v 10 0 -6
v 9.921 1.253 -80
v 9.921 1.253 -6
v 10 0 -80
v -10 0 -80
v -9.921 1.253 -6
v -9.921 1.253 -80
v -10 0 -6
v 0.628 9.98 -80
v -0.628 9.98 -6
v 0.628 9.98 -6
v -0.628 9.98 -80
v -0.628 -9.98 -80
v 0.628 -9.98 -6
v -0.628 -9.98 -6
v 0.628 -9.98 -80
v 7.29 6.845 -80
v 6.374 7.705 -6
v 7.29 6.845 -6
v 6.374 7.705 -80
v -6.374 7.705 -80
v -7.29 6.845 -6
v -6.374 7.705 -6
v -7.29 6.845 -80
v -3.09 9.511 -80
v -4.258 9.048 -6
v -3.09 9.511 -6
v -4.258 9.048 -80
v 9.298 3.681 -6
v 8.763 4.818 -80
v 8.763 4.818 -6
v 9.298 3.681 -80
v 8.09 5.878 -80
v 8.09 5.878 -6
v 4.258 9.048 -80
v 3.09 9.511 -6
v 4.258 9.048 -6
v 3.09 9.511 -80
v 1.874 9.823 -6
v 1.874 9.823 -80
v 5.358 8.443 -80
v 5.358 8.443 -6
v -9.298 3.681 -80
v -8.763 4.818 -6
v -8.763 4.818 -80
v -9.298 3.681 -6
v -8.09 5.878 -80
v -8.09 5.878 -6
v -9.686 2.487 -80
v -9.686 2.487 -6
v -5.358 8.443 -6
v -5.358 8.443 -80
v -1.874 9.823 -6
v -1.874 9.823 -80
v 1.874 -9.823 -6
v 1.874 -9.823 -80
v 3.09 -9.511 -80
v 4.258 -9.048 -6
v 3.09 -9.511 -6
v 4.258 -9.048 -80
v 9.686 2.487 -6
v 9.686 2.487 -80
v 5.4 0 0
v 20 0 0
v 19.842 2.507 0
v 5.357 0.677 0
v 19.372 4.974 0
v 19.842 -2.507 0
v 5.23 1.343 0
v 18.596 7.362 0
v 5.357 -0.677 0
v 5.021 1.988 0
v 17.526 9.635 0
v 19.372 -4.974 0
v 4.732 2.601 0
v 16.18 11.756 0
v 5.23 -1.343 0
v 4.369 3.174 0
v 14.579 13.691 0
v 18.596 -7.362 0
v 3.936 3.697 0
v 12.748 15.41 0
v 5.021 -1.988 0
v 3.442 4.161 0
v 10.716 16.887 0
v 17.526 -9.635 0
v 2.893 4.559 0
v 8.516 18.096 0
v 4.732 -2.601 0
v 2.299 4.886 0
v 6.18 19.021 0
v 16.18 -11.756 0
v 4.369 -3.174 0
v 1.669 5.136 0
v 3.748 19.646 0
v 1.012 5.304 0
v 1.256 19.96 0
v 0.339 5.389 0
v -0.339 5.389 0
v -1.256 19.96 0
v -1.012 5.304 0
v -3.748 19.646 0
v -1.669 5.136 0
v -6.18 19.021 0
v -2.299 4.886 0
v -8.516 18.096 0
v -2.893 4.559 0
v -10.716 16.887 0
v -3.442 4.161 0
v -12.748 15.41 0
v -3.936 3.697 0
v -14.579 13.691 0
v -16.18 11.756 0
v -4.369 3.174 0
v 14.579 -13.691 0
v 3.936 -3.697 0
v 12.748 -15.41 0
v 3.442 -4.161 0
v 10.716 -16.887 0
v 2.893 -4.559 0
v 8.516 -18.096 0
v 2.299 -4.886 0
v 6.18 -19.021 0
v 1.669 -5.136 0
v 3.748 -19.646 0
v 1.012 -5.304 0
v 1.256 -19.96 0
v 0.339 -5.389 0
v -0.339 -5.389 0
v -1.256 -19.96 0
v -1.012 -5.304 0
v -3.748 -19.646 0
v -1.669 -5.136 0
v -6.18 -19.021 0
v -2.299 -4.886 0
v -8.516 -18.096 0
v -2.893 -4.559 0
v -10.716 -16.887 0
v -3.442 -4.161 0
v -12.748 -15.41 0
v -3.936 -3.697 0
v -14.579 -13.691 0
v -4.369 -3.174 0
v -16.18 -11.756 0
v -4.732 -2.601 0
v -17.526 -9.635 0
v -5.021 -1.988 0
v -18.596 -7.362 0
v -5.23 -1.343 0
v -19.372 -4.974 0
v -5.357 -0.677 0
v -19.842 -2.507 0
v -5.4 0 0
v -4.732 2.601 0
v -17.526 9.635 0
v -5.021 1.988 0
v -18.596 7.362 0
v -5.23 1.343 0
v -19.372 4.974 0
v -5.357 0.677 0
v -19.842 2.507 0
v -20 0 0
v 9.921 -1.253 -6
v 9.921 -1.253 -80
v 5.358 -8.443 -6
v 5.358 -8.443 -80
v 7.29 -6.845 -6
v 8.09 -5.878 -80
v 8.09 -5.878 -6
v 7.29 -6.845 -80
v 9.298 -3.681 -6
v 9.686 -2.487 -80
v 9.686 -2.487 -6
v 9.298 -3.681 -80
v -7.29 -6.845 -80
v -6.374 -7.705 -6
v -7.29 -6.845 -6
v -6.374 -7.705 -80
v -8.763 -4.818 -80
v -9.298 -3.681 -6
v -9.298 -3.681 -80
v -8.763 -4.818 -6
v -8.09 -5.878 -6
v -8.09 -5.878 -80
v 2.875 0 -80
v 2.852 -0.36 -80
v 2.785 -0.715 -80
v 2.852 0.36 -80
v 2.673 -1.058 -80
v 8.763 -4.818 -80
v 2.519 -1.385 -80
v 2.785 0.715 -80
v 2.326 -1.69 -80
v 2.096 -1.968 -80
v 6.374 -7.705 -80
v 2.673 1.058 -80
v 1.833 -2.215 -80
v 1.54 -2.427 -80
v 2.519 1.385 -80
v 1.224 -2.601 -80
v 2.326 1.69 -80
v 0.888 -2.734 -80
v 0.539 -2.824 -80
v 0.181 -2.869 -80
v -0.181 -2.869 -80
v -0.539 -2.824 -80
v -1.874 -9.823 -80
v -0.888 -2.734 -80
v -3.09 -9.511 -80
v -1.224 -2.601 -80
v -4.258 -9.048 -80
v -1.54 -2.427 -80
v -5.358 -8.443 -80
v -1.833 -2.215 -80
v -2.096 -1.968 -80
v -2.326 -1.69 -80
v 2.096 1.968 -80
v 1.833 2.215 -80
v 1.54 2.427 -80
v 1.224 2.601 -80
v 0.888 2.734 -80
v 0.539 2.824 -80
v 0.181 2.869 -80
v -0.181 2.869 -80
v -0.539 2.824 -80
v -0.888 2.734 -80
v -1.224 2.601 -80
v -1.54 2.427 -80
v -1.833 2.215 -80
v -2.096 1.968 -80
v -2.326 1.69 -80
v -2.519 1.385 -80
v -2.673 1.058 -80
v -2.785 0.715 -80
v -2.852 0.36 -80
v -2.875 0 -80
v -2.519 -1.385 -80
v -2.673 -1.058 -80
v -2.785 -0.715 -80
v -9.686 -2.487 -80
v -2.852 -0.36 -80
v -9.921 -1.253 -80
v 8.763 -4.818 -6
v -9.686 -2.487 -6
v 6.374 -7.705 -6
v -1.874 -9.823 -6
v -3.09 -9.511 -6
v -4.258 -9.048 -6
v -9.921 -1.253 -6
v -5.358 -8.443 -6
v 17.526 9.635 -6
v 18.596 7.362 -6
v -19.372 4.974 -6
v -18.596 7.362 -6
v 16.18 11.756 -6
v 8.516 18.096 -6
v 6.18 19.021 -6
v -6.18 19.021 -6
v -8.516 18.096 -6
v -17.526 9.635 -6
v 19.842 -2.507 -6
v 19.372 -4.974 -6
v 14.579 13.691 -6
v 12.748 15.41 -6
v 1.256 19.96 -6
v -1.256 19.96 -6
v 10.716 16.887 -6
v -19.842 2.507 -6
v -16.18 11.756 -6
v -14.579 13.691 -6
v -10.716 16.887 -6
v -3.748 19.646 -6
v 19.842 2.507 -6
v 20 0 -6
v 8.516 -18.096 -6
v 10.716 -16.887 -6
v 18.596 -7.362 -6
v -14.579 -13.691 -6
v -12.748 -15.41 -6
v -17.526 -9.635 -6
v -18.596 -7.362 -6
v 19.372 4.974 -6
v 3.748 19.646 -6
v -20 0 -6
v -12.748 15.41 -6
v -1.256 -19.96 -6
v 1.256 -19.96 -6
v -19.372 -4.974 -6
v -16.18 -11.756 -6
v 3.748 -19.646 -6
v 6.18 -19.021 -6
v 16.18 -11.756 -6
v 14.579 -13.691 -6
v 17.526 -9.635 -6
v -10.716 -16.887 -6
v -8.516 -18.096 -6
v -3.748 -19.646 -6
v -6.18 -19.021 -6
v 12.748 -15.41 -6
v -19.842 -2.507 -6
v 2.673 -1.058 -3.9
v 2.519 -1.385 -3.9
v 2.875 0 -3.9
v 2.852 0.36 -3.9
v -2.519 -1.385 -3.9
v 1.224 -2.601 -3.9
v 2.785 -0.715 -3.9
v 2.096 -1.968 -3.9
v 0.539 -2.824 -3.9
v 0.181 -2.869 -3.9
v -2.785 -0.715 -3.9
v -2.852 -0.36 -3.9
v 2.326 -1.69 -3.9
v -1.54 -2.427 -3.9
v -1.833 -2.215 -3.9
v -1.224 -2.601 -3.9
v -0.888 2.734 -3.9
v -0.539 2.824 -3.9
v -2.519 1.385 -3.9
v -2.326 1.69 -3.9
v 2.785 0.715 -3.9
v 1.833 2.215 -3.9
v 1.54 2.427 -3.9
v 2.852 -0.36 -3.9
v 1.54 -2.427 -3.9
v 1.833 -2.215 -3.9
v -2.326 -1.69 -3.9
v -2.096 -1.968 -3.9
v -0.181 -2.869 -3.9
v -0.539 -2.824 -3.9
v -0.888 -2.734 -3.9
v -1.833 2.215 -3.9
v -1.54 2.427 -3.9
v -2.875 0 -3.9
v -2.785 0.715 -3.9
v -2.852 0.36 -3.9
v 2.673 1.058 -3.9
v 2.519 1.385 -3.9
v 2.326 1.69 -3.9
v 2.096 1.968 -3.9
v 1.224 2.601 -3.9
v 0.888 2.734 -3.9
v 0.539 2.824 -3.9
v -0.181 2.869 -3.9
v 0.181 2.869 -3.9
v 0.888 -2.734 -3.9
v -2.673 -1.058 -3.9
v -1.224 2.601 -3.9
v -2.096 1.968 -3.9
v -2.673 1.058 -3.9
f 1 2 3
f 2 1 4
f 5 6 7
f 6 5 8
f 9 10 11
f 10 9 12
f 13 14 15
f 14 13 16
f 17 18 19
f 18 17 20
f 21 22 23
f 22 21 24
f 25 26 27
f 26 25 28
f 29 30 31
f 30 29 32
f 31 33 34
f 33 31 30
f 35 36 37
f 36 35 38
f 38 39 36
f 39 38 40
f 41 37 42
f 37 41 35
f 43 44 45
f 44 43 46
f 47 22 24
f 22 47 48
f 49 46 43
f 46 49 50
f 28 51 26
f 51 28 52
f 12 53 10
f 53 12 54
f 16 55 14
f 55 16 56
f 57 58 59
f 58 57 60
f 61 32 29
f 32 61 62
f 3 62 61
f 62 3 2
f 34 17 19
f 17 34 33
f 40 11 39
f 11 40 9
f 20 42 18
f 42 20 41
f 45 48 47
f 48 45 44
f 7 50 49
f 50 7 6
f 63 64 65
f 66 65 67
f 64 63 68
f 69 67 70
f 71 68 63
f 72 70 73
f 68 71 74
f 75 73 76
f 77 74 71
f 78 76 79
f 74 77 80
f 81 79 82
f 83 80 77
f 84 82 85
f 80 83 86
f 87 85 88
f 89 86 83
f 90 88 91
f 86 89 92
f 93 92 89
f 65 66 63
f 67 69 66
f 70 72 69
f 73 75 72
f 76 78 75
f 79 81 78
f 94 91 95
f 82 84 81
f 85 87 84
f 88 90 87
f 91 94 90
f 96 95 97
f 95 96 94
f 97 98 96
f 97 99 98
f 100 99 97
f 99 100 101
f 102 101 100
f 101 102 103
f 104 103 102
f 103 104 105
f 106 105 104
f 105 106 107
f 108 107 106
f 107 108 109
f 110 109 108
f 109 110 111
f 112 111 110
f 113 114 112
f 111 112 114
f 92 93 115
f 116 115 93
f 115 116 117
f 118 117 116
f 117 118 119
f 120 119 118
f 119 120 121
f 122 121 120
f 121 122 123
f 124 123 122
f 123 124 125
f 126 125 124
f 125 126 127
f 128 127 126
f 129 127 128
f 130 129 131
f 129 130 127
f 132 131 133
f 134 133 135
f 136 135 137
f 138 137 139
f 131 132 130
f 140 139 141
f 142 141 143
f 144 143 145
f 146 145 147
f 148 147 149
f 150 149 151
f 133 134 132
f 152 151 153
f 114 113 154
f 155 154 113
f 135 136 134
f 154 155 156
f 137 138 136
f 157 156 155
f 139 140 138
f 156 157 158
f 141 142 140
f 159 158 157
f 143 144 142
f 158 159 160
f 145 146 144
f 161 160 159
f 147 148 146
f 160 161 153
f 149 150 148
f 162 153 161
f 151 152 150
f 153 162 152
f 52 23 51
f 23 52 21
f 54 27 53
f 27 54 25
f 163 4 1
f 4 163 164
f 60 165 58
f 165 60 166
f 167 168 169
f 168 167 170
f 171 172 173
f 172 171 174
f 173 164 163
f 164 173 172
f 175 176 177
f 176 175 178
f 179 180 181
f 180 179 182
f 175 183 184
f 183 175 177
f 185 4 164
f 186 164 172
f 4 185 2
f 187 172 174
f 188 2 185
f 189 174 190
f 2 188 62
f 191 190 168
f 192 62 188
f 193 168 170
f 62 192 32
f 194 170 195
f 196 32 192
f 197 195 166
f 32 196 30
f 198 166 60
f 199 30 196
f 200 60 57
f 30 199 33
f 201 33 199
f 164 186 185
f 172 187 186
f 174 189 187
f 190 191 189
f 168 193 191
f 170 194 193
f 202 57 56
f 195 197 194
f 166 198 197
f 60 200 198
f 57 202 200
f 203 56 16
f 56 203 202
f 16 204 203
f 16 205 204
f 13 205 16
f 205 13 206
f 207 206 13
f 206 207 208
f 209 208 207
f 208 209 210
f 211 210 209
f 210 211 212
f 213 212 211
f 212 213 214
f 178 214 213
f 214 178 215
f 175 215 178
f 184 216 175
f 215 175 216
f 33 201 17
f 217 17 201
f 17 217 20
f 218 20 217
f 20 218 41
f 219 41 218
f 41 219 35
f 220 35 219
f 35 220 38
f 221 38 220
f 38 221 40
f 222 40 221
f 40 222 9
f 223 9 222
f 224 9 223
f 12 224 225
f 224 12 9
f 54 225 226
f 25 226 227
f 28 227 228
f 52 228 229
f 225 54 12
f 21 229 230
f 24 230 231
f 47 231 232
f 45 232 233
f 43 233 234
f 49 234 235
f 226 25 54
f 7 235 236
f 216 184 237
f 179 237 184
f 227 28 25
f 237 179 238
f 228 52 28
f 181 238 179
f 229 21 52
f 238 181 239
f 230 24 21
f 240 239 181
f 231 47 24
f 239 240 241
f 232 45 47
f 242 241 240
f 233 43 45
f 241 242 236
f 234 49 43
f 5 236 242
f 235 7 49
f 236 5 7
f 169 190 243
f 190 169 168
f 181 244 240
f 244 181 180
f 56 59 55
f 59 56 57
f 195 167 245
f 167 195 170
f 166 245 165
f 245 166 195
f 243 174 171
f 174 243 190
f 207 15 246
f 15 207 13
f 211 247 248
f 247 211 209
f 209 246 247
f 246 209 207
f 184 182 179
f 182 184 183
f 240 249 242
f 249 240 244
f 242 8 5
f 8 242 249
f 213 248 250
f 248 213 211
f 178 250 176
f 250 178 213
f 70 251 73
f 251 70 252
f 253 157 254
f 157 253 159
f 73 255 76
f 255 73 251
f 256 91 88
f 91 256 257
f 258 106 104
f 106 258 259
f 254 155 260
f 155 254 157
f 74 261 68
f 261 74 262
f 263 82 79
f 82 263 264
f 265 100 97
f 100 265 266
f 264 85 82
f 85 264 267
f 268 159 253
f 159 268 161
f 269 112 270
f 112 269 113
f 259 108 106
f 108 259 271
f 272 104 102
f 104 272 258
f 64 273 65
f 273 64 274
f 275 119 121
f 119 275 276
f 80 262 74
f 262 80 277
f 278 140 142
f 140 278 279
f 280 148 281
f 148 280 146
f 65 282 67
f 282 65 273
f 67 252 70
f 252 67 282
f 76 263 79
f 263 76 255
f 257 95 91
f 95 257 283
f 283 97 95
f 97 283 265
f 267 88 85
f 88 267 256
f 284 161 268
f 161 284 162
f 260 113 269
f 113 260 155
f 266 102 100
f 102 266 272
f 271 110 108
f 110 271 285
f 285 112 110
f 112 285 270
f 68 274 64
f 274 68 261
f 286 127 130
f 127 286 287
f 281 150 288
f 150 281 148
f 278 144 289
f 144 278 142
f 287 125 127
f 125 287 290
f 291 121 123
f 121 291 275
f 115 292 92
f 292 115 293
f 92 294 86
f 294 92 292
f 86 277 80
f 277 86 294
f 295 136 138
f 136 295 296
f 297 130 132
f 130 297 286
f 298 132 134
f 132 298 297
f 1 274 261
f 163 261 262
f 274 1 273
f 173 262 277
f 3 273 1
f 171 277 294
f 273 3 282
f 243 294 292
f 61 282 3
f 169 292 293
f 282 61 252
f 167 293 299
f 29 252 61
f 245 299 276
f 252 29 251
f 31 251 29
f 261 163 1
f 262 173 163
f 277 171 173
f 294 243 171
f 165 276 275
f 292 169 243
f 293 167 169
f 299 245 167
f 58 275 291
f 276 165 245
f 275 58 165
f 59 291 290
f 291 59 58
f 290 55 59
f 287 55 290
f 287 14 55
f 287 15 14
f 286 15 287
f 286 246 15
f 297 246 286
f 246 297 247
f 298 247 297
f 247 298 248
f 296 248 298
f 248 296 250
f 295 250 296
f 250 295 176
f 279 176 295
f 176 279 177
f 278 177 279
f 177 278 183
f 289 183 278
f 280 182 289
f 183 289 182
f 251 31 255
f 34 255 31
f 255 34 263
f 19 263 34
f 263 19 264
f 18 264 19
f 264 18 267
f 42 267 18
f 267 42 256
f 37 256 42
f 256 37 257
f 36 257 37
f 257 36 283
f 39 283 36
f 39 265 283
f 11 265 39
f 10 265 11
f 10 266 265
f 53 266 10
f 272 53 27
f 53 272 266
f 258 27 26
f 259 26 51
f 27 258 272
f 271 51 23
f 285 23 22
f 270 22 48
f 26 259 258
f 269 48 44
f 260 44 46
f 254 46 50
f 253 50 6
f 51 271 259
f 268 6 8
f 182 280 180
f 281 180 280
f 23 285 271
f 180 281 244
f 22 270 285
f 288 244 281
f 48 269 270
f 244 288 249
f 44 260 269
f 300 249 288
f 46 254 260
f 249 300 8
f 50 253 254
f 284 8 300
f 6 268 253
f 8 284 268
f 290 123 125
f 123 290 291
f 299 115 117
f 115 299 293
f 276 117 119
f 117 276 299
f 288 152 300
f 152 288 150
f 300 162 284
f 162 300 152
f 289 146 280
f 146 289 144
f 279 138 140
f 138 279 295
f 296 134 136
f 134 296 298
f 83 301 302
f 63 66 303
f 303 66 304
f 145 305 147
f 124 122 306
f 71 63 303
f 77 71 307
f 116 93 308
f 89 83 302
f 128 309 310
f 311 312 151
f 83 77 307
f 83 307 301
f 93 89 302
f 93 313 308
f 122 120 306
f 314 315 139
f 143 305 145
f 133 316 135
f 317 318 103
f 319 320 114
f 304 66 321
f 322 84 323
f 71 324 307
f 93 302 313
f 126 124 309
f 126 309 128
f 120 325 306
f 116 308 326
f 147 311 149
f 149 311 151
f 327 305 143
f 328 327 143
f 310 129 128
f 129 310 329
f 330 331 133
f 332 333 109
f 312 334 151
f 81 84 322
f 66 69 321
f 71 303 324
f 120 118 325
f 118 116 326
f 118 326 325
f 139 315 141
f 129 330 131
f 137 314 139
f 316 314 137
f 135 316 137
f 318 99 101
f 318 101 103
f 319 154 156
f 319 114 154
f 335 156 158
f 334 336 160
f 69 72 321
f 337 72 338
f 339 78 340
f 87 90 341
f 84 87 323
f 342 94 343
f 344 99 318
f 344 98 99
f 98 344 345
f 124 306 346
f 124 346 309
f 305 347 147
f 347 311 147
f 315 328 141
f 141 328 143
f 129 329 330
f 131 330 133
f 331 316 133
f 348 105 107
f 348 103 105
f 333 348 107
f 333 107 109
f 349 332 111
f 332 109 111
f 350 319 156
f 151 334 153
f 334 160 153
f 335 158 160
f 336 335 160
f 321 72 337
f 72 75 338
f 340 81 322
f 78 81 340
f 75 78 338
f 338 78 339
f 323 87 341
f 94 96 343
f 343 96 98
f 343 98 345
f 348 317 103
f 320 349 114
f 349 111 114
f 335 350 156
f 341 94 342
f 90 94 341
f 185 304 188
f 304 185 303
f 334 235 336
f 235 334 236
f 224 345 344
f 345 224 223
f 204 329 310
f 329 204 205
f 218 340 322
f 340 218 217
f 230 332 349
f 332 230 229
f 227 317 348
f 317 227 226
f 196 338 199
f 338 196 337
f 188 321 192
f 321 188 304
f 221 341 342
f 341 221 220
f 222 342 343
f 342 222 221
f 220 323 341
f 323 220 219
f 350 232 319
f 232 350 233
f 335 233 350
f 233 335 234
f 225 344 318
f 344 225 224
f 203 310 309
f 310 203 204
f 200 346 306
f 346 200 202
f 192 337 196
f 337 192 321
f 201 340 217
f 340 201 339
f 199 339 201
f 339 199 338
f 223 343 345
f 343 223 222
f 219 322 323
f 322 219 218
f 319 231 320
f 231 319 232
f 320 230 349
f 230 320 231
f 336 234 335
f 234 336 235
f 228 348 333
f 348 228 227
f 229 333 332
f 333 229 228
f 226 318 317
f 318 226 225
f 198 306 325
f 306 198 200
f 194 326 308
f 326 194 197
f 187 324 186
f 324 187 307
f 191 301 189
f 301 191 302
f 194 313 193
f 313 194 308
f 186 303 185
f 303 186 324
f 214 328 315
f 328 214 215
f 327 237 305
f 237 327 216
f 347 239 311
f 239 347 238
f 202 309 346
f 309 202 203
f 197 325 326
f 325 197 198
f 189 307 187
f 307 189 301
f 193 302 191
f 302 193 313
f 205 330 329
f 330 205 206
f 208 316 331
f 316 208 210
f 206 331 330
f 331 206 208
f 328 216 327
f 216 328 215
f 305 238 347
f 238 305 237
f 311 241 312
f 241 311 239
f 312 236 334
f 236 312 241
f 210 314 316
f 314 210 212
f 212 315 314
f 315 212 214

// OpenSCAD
$fn = 50;


difference() {
	union() {
		translate(v = [0, 0, -80.0000000000]) {
			cylinder(h = 80, r = 10.0000000000);
		}
		translate(v = [0, 0, -6.0000000000]) {
			cylinder(h = 6, r = 20.0000000000);
		}
	}
	union() {
		translate(v = [0, 0, 0]) {
			rotate(a = [0, 0, 0]) {
				difference() {
					union() {
						#translate(v = [0, 0, -80.0000000000]) {
							cylinder(h = 80, r = 2.6000000000);
						}
						#translate(v = [0, 0, -3.9000000000]) {
							cylinder(h = 3.9000000000, r1 = 2.8750000000, r2 = 5.4000000000);
						}
						#translate(v = [0, 0, -80.0000000000]) {
							cylinder(h = 80, r = 2.8750000000);
						}
						#translate(v = [0, 0, -80.0000000000]) {
							cylinder(h = 80, r = 2.6000000000);
						}
					}
					union();
				}
			}
		}
	}
}
